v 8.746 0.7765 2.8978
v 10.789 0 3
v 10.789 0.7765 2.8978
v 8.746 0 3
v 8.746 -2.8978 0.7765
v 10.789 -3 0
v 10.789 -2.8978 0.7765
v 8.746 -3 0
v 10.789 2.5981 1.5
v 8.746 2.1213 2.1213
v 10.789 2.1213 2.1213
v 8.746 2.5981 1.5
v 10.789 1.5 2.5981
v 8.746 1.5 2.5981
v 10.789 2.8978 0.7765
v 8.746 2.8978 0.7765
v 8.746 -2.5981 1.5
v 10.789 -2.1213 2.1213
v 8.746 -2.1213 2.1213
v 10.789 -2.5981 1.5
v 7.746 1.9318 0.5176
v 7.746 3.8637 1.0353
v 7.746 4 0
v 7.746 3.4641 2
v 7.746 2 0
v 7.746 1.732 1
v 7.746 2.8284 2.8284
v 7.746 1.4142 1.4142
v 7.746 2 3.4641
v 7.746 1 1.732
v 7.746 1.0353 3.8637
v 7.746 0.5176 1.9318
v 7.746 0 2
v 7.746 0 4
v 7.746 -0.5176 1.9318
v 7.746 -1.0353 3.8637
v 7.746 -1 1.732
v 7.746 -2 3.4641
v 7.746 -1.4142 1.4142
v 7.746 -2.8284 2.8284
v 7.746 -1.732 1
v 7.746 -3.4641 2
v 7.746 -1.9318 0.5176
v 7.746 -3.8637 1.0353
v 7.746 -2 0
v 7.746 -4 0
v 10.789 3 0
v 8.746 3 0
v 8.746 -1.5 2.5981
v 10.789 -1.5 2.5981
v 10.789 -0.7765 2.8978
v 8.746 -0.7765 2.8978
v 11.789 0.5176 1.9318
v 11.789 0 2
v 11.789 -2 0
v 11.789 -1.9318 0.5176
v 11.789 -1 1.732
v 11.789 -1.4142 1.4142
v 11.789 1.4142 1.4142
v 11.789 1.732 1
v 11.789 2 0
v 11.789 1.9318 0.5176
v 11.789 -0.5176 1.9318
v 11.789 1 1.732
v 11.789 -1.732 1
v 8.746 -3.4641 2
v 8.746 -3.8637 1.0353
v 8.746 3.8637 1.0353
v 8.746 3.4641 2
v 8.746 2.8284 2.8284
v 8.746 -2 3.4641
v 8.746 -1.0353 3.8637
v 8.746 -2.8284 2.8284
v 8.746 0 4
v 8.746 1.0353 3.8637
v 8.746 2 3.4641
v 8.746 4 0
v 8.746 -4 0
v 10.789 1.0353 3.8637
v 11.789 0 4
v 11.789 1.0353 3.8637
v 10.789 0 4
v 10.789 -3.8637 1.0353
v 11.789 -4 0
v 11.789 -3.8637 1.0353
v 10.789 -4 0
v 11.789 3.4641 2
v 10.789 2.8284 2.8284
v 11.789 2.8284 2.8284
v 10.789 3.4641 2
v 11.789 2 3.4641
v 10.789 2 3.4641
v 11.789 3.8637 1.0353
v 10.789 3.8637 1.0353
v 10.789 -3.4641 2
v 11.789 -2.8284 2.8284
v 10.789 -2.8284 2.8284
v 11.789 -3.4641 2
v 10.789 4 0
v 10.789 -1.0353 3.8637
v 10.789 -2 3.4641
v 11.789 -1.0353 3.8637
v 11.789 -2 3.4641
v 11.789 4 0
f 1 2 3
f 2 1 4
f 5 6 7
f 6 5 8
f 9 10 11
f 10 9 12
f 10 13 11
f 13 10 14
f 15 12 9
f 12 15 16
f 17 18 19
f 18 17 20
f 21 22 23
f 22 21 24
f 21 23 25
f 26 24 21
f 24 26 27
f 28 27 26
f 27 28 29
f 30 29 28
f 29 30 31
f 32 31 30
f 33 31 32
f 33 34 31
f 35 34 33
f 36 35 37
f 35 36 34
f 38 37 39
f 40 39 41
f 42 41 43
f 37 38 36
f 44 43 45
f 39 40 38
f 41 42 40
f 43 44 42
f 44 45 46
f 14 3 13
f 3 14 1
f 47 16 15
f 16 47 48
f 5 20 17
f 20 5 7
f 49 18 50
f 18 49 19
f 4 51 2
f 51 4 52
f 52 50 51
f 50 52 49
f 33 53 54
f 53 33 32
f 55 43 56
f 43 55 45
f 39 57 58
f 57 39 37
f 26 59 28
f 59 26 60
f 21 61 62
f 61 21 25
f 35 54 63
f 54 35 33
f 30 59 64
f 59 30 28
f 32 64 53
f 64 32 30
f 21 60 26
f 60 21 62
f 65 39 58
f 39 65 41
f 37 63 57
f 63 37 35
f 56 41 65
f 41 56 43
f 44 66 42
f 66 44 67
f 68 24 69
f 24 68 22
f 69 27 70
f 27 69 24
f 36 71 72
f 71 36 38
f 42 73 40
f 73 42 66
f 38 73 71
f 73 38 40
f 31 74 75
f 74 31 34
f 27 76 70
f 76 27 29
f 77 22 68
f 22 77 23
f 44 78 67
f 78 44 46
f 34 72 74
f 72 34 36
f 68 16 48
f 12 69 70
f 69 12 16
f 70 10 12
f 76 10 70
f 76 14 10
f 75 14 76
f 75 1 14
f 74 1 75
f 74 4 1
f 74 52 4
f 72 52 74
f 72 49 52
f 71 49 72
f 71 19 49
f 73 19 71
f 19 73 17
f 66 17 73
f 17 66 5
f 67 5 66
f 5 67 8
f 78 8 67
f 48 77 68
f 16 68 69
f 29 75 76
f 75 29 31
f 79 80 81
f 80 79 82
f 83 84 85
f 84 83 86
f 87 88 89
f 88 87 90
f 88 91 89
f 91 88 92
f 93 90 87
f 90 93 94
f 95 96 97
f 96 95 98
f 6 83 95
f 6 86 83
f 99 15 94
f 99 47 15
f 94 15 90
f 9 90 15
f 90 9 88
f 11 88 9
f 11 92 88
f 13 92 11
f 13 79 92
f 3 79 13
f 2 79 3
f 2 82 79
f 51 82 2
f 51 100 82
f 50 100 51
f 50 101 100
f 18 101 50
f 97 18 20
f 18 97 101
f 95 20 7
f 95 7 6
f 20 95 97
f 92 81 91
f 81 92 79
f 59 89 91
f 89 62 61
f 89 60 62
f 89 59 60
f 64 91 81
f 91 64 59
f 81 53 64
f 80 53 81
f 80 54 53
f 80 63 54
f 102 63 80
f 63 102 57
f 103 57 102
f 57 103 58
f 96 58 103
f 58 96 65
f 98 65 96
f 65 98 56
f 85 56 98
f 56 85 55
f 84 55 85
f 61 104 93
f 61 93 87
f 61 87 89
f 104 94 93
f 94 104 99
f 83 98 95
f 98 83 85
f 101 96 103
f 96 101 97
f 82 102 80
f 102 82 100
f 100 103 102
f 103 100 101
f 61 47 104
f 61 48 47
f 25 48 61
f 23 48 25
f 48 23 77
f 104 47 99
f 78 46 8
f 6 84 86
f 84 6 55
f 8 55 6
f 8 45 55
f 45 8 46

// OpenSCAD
// file: ../build_environments.scad
// build_environments.scad: modules to build level sections
//

module pool(diameter=10.0, wall_height=2.0, step_width=3.0, connections=[])
{
    difference() {
        union() {
        difference() {
            cylinder(h=0.5,r1=diameter+step_width,r2=diameter+step_width,$fn=48);
            translate([0,0,-0.1])
                cylinder(h=0.7,r1=diameter,r2=diameter,$fn=48);
        }
        difference() {
            cylinder(h=wall_height,r1=diameter+step_width+1.0,r2=diameter+step_width+1.0,$fn=48);
            translate([0,0,-0.1])
                cylinder(h=wall_height+0.2,r1=diameter+step_width,r2=diameter+step_width,$fn=48);
        }
        }
    
        for (c = connections)
        {
            rotate([0,90,0]) {
                angle = atan2(c[1],c[0]);
                rotate([-angle,0,0]) {
                    cylinder(h=diameter+5.0,r1=c[2],r2=c[2],$fn=48);
                }
            }
        }
    }
}

module straight(length=10.0, width=2.0, dy1=0.0, dy2=0.0, dz=0.0)
{
    dims = [0, 0, 0, 0, 0, (dz/length)];
    matrix = [
        [ 1, dims[0], dims[1], 0 ],
        [ dims[2], 1, dims[4], 0 ],
        [ dims[5], dims[3], 1, 0 ],
        [ 0, 0, 0, 1 ]
    ];
    multmatrix(matrix)
    difference() {
        translate([dy1,0,0])
        union() {
            rotate([0,90,0]) {
                difference() {
                    cylinder(h=(length-dy1-dy2),r1=width+1.0,r2=width+1.0,$fn=24);
                    translate([0,0,-0.1])
                        cylinder(h=(length-dy1-dy2+0.2),r1=width,r2=width,$fn=24);
                }
                difference() {
                    cylinder(h=1.0,r1=width+2.0,r2=width+2.0,$fn=24);
                    translate([0,0,-0.1])
                        cylinder(h=1.2,r1=width,r2=width,$fn=24);
                }
                translate([0,0,(length-dy1-dy2)-1.0]) {
                    difference() {
                        cylinder(h=1.0,r1=width+2.0,r2=width+2.0,$fn=24);
                        translate([0,0,-0.1])
                            cylinder(h=1.2,r1=width,r2=width,$fn=24);
                    }
                }
            }
        }
        translate([0,0,-(2*width+4.0)/2])
            cube([3*length,3*length,2*width+4.0],center=true);
    }
}

module curve(p0=[0,0], center=[0,0], dir=1, angle=0.0, width=2.0)
{
    radius = sqrt((p0[0]-center[0])*(p0[0]-center[0]) + (p0[1]-center[1])*(p0[1]-center[1]));
    if (dir == 0) {
        difference() {
            rotate([0,0,-90])
            difference() {
                rotate_extrude(angle = angle, convexity = 10, $fn=32)
                    translate([radius, 0, 0])
                        circle(r = width+1.0,$fn=24);
                rotate([0,0,-1.0])
                    rotate_extrude(angle = angle+2.0, convexity = 10, $fn=32)
                        translate([radius, 0, 0])
                            circle(r = width,$fn=24);
            }
            translate([0,0,-(2*width+4.0)/2])
                cube([5*radius,5*radius,2*width+4.0],center=true);
        }
    }
    else {
        difference() {
            rotate([0,0,90])
            difference() {
                rotate_extrude(angle = -angle, convexity = 10, $fn=32)
                    translate([radius, 0, 0])
                        circle(r = width+1.0,$fn=24);
                rotate([0,0,1.0])
                    rotate_extrude(angle = -angle-2.0, convexity = 10, $fn=32)
                        translate([radius, 0, 0])
                            circle(r = width,$fn=24);
            }
            translate([0,0,-(2*width+4.0)/2])
                cube([5*radius,5*radius,2*width+4.0],center=true);
        }
    }

}

// test pool
//pool(diameter=12.0000, wall_height=3.0000, step_width=3.0000, connections=[[0.0000,-26.0000,2.0000], [23.6074,0.0000,2.0000]]);

// test straight, slope
//straight(length=26.0000, width=2.0000, dy1=11.8322, dy2=6.7082, dz=0.0000);
//straight(length=29.1549, width=12.0000, dy1=0.0000, dy2=0.0000, dz=-15.0000);

// test curve
//curve(p0=[23.6074, 0.0000], center=[23.6074, 5.0000], dir=0, angle=60.1011, width=2.0000);
//curve(p0=[33.6426, 12.4219], center=[37.9771, 9.9295], dir=1, angle=120.4627, width=2.0000);
// main file
use <../build_environments.scad>;
straight(length=21.5870, width=2.0000, dy1=7.7460, dy2=9.7980, dz=0.0000);
